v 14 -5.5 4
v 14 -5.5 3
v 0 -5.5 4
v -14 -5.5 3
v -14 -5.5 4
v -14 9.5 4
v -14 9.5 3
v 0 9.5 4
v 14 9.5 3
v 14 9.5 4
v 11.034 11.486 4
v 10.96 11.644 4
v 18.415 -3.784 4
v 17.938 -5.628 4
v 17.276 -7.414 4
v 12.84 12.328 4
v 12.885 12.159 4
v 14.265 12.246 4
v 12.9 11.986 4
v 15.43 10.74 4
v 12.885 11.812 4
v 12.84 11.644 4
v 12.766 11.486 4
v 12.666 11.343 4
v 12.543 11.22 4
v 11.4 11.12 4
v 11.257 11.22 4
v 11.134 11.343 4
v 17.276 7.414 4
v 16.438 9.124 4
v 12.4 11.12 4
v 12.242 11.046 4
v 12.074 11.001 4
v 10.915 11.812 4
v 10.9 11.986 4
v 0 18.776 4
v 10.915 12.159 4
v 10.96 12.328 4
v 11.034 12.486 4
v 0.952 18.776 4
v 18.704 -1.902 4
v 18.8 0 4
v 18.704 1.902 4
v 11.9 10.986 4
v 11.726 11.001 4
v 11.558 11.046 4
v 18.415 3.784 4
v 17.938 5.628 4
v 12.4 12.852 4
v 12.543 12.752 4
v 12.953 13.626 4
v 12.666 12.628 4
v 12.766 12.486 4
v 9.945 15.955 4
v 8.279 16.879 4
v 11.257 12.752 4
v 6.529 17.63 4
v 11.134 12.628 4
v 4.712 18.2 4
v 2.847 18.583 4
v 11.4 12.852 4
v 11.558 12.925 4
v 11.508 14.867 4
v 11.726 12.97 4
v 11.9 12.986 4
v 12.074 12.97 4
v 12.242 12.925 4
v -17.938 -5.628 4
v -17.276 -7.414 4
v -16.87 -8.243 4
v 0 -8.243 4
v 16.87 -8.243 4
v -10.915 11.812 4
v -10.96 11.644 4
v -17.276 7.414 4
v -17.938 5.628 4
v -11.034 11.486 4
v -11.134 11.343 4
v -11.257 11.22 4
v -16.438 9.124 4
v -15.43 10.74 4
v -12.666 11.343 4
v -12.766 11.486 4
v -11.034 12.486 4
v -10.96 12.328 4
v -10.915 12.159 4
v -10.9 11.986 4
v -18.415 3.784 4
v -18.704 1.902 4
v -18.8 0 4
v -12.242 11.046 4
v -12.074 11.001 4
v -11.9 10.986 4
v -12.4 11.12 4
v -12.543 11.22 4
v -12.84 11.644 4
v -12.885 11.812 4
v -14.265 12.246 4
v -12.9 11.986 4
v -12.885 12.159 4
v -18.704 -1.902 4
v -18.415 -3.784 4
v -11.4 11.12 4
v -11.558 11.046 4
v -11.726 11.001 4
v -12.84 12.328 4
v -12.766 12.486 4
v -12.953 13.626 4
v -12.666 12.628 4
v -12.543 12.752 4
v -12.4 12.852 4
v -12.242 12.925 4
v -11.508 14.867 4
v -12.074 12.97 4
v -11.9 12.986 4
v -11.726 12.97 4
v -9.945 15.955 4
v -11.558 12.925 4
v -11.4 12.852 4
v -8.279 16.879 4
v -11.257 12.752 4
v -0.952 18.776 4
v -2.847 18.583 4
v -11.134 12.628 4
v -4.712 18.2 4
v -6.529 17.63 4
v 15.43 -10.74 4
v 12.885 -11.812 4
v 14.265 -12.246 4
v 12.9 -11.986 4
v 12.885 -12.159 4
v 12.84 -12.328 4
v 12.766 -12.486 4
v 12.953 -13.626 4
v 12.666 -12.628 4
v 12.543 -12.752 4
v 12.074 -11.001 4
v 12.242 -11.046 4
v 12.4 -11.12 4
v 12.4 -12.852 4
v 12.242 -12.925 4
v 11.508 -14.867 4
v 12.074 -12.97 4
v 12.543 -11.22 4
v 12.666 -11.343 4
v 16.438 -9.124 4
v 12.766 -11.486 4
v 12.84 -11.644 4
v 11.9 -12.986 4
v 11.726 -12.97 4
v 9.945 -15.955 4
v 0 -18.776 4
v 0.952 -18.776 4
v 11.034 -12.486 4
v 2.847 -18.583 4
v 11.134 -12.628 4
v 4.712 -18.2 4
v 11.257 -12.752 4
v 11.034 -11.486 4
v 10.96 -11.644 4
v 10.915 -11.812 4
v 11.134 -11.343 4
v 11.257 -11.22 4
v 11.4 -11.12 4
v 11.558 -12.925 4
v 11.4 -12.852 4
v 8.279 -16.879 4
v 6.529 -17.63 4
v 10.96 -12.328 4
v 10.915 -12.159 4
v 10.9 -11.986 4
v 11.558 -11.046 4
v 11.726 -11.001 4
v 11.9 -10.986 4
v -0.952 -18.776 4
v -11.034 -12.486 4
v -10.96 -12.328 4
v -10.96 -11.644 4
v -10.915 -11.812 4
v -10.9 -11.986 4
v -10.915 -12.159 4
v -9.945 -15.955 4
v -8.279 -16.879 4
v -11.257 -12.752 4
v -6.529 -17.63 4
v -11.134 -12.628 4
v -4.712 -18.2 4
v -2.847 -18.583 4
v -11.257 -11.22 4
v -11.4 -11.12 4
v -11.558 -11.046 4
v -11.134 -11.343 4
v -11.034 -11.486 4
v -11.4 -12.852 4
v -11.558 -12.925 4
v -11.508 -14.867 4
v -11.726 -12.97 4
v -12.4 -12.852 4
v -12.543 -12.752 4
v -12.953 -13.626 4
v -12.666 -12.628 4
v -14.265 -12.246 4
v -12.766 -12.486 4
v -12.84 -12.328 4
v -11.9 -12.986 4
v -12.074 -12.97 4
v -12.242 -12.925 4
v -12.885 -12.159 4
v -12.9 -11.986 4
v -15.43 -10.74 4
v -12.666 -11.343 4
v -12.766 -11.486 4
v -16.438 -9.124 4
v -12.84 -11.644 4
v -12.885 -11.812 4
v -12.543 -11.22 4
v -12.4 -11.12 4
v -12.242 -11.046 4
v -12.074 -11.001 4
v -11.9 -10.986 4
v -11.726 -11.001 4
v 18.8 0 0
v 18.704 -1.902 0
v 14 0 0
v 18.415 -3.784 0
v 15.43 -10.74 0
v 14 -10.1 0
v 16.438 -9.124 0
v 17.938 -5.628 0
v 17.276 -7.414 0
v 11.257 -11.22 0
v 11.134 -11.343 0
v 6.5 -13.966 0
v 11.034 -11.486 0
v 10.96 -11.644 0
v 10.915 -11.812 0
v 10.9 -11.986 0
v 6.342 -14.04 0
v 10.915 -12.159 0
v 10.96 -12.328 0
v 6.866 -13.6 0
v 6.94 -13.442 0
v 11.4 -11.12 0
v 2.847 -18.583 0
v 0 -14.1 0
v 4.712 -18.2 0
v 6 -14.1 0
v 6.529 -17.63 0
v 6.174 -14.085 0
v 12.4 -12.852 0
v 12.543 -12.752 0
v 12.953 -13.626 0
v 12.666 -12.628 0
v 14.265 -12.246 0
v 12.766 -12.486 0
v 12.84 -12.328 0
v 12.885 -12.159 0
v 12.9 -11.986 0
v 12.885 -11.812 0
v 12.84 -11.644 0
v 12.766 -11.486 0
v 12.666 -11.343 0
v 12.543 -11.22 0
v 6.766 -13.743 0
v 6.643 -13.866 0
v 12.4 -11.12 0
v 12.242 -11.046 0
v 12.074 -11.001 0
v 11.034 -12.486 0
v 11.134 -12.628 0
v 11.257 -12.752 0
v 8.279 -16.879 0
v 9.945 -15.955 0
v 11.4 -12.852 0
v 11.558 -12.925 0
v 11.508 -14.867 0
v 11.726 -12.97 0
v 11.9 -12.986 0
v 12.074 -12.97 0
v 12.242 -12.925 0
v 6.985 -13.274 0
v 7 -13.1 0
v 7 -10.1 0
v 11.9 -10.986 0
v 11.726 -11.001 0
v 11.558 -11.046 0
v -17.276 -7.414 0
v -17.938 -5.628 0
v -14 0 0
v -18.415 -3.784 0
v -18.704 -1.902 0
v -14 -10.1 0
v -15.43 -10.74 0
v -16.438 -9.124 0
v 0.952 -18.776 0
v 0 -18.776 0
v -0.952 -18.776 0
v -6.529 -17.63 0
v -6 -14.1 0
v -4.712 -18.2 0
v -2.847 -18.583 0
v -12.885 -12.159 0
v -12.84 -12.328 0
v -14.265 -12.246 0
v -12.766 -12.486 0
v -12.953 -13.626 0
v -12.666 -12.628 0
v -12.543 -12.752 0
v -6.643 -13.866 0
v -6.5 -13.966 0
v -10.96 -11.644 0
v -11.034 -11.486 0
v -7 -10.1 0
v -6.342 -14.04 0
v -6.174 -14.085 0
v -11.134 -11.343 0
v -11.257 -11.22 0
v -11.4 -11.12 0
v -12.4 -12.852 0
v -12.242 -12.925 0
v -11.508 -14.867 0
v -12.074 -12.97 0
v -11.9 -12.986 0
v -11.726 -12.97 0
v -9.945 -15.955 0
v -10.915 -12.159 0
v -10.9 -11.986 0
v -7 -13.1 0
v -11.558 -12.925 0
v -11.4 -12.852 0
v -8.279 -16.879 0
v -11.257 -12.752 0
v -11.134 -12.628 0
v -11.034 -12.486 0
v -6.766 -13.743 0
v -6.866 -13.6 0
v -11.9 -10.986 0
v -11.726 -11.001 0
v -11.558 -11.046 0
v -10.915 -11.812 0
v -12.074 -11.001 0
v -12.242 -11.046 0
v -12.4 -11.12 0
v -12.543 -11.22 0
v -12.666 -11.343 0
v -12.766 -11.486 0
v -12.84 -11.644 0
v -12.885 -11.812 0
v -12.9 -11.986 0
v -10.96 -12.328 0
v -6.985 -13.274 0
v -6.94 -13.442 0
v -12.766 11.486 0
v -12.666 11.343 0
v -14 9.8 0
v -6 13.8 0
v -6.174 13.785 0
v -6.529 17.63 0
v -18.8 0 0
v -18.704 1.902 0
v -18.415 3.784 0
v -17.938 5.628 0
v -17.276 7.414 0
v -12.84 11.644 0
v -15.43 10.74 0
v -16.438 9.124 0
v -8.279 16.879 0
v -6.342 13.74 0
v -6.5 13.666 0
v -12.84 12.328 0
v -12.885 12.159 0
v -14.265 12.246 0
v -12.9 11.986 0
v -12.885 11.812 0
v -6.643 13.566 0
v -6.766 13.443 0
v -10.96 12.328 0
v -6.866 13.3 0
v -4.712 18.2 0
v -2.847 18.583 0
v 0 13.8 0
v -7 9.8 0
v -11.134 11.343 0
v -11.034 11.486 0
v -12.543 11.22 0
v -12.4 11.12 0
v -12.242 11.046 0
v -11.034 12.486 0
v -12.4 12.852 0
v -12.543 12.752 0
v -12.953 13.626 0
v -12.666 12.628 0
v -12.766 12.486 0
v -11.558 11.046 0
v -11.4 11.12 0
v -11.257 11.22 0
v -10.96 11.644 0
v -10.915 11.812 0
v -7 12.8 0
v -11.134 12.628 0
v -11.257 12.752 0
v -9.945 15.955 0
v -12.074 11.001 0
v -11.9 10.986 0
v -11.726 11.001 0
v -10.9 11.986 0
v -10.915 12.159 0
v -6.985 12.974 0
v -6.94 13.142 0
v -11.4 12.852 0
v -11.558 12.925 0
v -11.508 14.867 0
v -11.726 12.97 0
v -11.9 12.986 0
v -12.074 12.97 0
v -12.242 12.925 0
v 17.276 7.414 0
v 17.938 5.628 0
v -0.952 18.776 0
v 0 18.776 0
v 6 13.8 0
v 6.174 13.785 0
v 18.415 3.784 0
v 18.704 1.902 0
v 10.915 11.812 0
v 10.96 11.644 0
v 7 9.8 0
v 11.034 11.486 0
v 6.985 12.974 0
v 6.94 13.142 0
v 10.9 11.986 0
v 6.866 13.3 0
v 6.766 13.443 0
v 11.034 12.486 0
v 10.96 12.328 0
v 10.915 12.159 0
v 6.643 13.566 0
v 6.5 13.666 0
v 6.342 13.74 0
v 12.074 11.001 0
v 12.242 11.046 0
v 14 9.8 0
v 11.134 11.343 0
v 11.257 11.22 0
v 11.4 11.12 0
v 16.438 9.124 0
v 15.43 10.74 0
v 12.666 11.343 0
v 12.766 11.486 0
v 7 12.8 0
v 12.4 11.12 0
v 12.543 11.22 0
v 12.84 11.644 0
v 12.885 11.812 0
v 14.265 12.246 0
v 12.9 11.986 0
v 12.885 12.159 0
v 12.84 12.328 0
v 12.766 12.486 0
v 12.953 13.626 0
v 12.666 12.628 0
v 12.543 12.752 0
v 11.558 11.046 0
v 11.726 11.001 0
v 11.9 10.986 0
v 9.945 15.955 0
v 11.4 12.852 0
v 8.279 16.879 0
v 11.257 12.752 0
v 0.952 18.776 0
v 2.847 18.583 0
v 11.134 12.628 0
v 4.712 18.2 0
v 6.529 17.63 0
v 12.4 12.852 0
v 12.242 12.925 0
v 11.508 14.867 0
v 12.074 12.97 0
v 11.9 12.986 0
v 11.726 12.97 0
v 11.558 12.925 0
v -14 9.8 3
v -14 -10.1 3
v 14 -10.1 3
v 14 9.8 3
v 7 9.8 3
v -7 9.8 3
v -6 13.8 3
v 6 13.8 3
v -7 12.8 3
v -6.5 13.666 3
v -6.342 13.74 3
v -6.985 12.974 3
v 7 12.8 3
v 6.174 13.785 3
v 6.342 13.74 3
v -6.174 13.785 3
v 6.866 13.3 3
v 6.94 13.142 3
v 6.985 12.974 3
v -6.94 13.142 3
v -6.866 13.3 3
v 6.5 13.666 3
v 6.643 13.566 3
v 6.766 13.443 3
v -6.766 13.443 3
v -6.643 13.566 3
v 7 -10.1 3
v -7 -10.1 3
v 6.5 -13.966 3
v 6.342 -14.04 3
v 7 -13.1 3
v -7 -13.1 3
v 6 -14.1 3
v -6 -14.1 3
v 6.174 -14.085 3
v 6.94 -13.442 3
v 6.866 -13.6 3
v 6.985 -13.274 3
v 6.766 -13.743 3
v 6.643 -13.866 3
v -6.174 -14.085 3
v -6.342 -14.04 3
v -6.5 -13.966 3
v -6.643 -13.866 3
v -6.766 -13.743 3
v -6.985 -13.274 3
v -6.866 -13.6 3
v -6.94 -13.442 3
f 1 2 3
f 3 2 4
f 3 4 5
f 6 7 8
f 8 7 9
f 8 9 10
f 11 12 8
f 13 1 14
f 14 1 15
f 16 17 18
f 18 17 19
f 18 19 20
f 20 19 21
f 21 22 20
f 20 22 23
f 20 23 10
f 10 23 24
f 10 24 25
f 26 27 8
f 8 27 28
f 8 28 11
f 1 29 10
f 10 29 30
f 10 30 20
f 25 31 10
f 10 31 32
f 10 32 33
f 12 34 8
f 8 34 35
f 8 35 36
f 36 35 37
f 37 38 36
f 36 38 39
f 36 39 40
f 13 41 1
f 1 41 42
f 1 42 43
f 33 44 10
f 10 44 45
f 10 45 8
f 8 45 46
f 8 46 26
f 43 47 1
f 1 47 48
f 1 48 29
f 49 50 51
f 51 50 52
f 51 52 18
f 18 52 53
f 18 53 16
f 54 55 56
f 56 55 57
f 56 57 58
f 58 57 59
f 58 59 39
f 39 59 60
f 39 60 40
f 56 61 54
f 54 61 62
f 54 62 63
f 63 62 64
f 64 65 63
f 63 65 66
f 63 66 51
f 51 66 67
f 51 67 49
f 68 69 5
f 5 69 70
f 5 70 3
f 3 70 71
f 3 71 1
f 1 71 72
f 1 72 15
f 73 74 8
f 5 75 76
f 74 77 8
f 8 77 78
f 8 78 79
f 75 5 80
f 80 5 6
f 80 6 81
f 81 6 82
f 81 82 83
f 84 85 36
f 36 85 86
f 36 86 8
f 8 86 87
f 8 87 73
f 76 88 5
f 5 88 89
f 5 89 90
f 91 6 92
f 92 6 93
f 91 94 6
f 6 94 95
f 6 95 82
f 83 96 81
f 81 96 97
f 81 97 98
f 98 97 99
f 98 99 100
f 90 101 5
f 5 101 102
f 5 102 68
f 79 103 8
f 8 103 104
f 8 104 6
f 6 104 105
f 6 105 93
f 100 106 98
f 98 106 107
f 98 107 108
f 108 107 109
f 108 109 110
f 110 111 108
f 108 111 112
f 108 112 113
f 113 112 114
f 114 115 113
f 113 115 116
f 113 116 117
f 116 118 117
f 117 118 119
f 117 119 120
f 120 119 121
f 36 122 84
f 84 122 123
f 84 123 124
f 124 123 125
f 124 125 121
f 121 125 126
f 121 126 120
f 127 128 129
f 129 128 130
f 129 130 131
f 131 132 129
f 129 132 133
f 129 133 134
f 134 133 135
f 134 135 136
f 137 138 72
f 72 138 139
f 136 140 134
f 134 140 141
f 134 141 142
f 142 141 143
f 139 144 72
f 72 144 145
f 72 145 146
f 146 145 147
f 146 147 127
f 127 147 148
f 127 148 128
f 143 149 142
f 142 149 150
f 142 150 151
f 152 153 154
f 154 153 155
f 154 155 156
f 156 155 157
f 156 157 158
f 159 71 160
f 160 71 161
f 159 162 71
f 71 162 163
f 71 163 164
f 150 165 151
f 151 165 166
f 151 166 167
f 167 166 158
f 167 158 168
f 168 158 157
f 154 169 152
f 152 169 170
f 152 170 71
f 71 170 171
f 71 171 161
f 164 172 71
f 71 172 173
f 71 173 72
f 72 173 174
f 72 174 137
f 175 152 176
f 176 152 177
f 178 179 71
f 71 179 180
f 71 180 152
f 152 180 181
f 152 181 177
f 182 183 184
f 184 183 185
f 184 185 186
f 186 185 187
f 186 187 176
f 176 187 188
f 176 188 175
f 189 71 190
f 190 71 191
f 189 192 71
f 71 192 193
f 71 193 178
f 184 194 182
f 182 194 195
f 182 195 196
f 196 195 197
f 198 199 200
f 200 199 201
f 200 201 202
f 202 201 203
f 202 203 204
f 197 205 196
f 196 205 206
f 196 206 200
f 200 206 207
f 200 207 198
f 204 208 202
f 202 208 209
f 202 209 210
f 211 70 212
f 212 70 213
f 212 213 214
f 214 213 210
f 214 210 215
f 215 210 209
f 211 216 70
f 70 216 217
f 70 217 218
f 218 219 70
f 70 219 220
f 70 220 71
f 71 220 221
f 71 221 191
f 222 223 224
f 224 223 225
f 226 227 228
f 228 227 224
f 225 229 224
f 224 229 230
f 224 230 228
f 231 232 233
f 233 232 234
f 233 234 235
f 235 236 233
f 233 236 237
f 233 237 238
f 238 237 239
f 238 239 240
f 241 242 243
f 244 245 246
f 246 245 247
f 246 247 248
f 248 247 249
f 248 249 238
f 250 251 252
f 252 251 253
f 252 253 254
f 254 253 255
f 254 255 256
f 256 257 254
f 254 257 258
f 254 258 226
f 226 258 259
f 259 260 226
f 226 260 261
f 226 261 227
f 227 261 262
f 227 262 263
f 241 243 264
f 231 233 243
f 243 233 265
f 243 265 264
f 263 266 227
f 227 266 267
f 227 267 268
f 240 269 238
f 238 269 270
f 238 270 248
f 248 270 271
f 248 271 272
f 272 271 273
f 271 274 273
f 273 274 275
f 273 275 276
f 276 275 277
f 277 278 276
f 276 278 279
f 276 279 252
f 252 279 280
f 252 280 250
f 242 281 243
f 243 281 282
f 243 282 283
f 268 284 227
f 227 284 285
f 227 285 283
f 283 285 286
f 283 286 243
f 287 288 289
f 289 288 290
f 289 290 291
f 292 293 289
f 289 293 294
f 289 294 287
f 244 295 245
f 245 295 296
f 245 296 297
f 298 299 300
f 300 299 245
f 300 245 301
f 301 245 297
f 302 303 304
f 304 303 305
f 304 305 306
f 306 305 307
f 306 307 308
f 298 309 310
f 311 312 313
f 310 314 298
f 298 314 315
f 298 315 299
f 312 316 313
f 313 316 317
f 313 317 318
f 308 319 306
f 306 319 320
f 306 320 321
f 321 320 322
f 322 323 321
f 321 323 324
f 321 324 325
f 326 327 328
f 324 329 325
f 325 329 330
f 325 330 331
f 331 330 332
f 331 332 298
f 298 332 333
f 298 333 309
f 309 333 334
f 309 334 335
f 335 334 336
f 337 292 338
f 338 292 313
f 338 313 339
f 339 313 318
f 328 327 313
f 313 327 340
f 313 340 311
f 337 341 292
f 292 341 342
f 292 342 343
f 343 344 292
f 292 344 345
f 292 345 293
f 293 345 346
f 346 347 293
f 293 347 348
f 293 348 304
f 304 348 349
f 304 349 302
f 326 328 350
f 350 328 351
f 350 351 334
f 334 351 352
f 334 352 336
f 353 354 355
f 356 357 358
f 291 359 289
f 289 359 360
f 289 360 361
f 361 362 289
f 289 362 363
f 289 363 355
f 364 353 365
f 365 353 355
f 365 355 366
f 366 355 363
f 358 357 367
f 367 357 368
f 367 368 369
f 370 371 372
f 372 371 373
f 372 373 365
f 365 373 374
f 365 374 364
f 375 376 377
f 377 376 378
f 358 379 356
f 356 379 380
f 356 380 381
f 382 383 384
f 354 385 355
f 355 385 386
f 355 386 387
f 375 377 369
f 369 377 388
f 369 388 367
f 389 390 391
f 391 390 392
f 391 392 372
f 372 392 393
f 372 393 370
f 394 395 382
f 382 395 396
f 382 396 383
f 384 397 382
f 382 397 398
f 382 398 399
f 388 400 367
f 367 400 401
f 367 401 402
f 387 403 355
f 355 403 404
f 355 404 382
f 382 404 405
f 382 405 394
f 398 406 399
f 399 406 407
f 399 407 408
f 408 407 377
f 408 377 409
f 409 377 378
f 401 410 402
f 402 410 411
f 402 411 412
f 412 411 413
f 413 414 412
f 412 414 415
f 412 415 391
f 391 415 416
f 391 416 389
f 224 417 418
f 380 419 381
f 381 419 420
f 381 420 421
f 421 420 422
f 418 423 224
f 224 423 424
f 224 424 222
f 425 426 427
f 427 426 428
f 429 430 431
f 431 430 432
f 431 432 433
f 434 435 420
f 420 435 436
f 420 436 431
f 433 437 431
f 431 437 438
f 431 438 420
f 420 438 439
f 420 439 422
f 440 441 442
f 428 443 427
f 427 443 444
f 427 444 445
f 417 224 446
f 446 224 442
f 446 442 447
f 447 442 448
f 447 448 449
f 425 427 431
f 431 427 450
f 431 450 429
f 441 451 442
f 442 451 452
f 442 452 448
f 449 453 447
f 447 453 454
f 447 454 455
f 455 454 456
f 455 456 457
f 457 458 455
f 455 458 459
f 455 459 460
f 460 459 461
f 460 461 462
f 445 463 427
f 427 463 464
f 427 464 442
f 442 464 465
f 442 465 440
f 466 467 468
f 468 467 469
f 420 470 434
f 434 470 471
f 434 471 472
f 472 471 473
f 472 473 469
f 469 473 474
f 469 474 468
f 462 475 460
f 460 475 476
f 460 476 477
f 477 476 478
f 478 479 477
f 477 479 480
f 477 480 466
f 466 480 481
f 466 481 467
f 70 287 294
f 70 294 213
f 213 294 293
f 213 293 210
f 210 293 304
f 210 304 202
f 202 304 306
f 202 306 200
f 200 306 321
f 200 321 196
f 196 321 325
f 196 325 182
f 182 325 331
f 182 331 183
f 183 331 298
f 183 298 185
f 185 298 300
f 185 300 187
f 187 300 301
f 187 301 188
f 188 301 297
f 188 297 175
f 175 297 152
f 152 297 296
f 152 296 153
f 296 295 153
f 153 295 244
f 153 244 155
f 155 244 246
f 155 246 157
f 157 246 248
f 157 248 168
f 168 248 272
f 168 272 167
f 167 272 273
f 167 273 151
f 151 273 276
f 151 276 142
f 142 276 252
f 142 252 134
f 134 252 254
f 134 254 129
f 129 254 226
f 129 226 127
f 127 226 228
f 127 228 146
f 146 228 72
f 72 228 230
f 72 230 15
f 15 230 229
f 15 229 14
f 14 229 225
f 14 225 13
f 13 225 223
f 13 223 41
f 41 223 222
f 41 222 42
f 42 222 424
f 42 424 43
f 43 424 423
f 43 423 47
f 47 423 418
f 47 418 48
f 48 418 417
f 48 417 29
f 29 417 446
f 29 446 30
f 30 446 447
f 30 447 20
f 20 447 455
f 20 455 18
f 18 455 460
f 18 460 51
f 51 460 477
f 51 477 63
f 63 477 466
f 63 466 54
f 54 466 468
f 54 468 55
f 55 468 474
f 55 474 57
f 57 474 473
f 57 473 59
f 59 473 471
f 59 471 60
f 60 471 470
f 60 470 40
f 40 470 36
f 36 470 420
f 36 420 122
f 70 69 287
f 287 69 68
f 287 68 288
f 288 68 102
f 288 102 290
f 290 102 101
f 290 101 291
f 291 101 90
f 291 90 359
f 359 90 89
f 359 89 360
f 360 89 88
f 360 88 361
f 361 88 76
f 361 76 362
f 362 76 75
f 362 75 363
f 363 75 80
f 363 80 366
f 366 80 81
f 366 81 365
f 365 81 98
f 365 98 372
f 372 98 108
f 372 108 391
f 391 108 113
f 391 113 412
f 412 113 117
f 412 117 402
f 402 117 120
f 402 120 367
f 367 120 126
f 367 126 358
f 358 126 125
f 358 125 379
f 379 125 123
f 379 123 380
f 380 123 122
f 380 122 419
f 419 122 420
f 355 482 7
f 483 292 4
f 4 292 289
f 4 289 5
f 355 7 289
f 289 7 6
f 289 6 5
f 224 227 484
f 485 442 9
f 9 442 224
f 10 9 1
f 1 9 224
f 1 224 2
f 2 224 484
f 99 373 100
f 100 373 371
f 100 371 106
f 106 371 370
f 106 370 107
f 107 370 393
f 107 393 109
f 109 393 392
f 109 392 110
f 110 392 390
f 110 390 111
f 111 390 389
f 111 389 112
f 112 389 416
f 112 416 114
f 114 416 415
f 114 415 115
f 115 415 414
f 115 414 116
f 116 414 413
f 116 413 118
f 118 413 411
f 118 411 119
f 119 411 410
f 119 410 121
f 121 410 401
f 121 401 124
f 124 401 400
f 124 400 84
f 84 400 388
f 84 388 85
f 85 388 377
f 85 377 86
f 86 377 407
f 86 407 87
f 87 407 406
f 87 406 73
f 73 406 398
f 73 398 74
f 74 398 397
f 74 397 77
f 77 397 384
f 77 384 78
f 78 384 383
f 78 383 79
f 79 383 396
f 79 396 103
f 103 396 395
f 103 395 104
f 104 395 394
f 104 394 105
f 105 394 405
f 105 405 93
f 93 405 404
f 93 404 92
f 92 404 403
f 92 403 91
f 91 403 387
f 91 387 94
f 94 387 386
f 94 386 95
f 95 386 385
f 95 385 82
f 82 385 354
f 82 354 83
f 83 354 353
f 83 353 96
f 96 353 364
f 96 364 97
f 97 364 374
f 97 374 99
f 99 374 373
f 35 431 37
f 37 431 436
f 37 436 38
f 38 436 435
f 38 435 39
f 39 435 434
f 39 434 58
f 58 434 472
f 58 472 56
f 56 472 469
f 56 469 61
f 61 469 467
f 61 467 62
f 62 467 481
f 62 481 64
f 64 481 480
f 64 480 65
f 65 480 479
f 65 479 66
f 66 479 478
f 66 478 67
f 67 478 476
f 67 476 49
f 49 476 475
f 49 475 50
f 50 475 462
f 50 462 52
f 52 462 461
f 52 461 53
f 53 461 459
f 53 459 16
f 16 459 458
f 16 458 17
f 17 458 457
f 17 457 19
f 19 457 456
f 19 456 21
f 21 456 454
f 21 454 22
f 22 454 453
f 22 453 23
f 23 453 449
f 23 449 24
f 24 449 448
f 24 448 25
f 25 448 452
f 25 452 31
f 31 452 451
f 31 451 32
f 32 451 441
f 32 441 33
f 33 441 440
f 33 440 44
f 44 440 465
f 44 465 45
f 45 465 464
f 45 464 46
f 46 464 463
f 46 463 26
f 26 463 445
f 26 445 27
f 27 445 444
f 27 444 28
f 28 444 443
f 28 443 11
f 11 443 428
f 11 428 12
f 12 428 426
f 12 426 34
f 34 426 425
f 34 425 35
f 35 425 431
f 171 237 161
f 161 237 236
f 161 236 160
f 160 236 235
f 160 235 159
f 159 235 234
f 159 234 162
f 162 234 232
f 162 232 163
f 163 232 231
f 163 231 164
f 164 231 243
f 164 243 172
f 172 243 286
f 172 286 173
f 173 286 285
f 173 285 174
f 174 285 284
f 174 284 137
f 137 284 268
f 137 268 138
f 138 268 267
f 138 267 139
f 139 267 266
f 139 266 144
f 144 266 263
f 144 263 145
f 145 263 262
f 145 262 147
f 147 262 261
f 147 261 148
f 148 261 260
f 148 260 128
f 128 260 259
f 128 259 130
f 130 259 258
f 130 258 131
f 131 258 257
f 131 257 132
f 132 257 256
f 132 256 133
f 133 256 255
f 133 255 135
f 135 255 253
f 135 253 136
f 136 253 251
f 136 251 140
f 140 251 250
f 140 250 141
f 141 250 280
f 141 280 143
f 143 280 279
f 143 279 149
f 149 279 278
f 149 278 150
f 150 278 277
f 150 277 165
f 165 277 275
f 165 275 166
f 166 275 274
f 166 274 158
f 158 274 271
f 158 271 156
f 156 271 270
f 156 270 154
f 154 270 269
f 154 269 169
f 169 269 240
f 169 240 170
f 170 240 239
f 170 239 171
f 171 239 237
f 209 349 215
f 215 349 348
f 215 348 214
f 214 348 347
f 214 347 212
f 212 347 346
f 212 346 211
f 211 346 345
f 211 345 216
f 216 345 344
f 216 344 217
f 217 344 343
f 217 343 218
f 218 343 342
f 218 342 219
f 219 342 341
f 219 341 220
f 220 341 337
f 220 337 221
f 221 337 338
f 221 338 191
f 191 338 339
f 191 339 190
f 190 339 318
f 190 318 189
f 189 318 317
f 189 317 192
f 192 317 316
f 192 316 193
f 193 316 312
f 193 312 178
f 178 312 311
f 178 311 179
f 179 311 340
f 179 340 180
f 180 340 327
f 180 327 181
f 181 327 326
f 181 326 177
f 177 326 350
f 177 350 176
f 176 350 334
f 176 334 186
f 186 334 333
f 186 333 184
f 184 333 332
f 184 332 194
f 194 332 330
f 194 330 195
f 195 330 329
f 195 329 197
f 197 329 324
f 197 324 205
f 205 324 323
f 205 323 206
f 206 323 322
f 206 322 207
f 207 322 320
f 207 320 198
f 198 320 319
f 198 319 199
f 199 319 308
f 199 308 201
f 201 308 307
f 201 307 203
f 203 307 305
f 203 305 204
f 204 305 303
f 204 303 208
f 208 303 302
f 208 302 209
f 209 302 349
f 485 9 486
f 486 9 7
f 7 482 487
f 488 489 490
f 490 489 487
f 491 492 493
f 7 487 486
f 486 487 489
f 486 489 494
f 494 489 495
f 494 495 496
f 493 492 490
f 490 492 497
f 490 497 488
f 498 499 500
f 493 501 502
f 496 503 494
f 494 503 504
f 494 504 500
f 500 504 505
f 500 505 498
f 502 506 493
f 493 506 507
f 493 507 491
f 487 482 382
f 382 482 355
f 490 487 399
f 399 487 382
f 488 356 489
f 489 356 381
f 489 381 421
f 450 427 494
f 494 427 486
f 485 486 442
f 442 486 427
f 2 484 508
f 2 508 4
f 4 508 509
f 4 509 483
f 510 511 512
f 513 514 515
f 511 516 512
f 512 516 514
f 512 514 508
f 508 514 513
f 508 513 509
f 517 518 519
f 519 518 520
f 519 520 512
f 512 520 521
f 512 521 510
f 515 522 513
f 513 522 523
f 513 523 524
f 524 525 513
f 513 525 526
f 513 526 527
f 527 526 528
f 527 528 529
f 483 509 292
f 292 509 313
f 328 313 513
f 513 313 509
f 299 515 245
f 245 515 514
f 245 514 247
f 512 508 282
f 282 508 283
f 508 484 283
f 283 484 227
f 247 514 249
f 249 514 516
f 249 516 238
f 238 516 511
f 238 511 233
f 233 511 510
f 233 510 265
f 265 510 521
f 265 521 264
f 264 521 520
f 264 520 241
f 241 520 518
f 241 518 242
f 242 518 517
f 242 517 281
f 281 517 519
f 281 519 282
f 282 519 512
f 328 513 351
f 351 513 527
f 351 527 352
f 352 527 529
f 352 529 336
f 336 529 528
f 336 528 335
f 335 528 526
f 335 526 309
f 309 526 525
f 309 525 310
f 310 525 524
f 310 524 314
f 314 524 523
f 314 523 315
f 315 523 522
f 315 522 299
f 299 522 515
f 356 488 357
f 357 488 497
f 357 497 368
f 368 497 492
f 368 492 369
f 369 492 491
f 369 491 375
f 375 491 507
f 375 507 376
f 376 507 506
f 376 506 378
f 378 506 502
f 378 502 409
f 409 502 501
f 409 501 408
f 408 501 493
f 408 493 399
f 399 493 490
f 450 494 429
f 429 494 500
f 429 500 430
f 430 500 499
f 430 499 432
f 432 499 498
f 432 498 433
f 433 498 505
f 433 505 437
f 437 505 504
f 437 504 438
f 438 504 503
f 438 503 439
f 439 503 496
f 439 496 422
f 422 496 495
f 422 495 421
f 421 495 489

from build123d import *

# Parameters (mm, degrees)
SKETCH1_R           = 18.8
SKETCH1_R_2         = 1
SKETCH1_W           = 28
SKETCH1_H           = 15
BOSS_EXTRUDE1_DEPTH = 4
CUT_EXTRUDE1_DEPTH  = 3
FILLET1_R           = 1


with BuildPart() as part:
    # Sketch1 → Boss-Extrude1 (new body)
    with BuildSketch(Plane.XY):
        Circle(SKETCH1_R)
        with Locations((-11.9, 11.985611511)):
            Circle(SKETCH1_R_2, mode=Mode.SUBTRACT)
        with Locations((11.9, 11.985611511)):
            Circle(SKETCH1_R_2, mode=Mode.SUBTRACT)
        with Locations((11.9, -11.985611511)):
            Circle(SKETCH1_R_2, mode=Mode.SUBTRACT)
        with Locations((-11.9, -11.985611511)):
            Circle(SKETCH1_R_2, mode=Mode.SUBTRACT)
        with Locations((0, 2)):
            Rectangle(SKETCH1_W, SKETCH1_H, mode=Mode.SUBTRACT)
    extrude(amount=BOSS_EXTRUDE1_DEPTH)

    # Sketch2 → Cut-Extrude1 (cut)
    with BuildSketch(Plane(origin=(0, 0, 0), x_dir=(-1, 0, 0), z_dir=(0, 0, -1))):
        Polygon((-14, 9.8), (-7, 9.8), (-7, 13.8), (7, 13.8), (7, 9.8), (14, 9.8), (14, -10.1), (7, -10.1), (7, -14.1), (-7, -14.1), (-7, -10.1), (-14, -10.1), align=None)
    extrude(amount=-CUT_EXTRUDE1_DEPTH, mode=Mode.SUBTRACT)

    # Fillet1
    fillet1_edges = [part.edges().sort_by_distance(p)[0] for p in [
        (7, 13.8, 1.5),
        (-7, 13.8, 1.5),
        (-7, -14.1, 1.5),
        (7, -14.1, 1.5),
    ]]
    fillet(fillet1_edges, radius=FILLET1_R)


solid = part.part
